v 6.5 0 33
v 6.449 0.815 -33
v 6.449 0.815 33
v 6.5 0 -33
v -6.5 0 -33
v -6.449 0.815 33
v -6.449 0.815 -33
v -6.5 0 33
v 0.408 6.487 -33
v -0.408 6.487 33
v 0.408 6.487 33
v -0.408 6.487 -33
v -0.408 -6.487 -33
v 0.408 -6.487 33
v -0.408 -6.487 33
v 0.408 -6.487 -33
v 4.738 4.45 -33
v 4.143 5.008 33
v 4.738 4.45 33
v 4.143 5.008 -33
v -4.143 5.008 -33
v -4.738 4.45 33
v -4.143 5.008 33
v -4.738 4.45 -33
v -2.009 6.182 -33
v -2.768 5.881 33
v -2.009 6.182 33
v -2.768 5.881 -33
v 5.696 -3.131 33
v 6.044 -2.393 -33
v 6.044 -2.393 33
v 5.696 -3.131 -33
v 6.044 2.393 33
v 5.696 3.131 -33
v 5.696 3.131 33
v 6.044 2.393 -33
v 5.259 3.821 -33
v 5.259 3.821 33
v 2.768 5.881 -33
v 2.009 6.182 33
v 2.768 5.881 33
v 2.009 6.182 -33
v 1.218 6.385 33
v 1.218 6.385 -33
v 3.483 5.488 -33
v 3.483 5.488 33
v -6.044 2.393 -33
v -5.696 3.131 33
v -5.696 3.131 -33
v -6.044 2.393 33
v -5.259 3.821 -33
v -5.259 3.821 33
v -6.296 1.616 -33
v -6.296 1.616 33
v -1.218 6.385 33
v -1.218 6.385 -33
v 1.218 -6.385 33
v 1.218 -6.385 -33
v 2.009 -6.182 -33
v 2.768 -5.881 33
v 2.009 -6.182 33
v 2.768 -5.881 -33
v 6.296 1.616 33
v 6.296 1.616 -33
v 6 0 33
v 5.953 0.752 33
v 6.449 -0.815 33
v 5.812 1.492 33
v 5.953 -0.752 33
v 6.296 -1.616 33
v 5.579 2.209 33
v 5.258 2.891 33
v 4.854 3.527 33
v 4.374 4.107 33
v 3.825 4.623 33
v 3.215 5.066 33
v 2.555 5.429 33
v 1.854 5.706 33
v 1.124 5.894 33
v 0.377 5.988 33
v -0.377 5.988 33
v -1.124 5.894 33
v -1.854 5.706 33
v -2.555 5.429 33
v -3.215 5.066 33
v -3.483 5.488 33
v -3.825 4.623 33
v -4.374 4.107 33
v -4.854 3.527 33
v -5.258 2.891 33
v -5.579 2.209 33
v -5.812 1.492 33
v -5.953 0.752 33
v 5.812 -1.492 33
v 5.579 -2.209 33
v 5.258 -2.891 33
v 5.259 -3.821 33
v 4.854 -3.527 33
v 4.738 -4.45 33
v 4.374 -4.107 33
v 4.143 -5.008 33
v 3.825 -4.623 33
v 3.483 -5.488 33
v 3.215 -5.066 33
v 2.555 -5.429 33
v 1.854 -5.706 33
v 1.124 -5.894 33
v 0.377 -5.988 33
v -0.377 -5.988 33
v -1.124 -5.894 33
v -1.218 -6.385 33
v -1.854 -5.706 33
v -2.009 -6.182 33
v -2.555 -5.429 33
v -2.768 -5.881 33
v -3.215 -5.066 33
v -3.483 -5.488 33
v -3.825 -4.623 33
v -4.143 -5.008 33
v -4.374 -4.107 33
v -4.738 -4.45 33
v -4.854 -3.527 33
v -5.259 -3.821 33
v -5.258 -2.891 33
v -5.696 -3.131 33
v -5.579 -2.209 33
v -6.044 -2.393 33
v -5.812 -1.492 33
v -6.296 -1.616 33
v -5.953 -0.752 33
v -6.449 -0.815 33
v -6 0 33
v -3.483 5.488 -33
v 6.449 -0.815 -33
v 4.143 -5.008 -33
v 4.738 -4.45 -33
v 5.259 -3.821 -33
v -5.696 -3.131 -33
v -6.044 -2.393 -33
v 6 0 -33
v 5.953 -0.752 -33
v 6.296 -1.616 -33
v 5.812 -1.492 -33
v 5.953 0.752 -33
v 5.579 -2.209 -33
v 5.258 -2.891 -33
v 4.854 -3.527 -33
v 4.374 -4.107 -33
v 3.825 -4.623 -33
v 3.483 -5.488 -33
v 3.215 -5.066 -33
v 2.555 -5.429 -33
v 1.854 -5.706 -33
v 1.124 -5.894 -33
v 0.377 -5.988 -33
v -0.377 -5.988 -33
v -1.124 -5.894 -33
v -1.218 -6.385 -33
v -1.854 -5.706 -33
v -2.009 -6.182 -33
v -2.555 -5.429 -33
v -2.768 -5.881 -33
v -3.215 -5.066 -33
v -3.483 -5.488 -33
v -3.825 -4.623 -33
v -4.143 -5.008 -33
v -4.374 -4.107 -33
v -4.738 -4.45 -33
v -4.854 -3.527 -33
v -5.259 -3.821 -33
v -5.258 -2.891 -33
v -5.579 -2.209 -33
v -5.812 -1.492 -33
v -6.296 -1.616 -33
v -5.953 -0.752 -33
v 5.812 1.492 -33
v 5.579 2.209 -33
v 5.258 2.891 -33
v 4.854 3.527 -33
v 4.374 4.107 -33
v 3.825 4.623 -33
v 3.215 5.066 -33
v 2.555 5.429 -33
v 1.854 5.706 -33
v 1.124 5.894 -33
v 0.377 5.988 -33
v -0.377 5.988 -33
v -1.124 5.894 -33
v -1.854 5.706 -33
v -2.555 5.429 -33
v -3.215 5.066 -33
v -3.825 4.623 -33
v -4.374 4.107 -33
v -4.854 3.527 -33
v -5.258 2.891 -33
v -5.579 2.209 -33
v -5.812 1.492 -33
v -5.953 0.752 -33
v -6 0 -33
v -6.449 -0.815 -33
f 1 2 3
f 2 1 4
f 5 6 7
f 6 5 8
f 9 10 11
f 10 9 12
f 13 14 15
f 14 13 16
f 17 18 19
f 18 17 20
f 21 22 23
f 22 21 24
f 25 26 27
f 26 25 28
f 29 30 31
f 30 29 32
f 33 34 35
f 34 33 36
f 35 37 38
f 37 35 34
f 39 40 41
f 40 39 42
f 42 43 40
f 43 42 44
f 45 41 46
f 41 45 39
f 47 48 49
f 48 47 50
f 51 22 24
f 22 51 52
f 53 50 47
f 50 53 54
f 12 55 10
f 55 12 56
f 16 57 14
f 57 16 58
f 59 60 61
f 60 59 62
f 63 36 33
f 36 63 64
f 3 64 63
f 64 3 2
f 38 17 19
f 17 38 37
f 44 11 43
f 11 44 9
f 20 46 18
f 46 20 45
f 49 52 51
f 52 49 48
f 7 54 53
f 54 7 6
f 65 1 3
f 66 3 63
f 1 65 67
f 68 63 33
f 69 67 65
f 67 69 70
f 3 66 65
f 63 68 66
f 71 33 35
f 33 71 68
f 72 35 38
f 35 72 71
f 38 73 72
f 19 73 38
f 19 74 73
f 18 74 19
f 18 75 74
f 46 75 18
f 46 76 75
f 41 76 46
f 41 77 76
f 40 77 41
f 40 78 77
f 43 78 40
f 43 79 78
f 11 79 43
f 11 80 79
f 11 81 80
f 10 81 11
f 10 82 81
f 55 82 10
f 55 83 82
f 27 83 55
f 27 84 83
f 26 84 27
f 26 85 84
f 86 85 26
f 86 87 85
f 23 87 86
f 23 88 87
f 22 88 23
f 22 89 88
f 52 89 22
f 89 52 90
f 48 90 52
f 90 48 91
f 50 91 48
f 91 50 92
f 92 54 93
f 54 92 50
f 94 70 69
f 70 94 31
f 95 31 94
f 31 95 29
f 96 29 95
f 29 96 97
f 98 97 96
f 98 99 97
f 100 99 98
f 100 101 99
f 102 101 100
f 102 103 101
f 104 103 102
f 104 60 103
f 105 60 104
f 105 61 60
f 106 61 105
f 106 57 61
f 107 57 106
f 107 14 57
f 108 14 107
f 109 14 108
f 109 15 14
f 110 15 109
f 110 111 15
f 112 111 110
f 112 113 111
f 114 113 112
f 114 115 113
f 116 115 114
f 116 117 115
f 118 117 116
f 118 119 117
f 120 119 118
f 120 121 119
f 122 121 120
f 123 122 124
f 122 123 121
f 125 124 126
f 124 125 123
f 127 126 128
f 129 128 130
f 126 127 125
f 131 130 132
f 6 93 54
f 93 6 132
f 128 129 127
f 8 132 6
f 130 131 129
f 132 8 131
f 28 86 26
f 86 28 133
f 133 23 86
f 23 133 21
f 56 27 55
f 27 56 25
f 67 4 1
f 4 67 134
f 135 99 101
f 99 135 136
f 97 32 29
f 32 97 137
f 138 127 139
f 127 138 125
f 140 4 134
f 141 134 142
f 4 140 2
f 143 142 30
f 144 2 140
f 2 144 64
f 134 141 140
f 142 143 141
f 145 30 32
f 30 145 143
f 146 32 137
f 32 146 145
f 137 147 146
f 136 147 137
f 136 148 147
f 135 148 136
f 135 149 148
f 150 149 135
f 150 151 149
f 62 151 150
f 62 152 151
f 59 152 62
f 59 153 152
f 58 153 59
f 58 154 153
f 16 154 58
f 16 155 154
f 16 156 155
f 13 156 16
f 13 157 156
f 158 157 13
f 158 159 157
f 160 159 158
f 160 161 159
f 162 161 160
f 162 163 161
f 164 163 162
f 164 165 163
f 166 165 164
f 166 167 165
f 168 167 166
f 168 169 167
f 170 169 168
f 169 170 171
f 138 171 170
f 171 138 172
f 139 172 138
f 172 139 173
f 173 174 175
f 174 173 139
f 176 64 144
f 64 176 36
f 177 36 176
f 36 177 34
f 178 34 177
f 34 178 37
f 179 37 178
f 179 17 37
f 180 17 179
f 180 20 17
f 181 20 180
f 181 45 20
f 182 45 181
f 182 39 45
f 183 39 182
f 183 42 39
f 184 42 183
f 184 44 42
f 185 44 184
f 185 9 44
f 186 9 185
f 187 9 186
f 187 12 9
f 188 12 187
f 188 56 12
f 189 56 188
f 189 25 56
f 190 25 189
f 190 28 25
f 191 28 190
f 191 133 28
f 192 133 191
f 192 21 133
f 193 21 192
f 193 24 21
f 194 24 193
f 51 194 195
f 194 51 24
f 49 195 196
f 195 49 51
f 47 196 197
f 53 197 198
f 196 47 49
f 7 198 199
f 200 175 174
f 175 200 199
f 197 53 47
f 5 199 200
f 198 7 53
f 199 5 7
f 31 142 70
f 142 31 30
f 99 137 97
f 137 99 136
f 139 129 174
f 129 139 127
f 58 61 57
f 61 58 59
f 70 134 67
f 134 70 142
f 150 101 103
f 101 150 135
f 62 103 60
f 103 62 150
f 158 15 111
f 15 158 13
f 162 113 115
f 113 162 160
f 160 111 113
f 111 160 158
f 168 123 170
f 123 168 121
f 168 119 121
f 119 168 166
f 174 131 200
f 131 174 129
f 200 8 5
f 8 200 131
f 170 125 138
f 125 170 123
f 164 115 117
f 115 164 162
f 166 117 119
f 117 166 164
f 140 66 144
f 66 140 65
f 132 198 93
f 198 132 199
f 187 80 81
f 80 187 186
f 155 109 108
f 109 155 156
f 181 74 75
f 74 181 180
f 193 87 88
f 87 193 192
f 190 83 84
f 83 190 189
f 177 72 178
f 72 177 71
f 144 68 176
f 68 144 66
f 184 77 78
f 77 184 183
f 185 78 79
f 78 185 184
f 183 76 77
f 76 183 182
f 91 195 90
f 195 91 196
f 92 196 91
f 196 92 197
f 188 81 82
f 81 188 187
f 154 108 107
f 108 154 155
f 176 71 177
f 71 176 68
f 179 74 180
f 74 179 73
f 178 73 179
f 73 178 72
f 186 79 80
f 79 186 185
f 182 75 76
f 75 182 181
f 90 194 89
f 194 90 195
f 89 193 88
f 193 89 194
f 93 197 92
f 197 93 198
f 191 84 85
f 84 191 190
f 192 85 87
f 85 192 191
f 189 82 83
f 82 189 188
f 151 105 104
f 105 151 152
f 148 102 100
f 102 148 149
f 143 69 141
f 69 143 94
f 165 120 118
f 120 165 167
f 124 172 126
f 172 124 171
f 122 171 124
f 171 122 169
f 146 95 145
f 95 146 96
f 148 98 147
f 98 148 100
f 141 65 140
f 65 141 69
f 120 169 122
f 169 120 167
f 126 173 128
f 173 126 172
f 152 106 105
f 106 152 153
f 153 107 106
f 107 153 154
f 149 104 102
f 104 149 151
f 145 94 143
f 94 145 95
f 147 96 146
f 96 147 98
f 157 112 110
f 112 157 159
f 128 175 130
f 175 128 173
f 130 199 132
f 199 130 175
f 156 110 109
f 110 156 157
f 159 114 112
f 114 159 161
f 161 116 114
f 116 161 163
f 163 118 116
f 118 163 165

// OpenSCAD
$fn = 50;


difference() {
	union() {
		translate(v = [0, 0, -33.0000000000]) {
			cylinder(h = 66, r = 6.5000000000);
		}
	}
	union() {
		translate(v = [0, 0, -100.0000000000]) {
			cylinder(h = 200, r = 6);
		}
	}
}
